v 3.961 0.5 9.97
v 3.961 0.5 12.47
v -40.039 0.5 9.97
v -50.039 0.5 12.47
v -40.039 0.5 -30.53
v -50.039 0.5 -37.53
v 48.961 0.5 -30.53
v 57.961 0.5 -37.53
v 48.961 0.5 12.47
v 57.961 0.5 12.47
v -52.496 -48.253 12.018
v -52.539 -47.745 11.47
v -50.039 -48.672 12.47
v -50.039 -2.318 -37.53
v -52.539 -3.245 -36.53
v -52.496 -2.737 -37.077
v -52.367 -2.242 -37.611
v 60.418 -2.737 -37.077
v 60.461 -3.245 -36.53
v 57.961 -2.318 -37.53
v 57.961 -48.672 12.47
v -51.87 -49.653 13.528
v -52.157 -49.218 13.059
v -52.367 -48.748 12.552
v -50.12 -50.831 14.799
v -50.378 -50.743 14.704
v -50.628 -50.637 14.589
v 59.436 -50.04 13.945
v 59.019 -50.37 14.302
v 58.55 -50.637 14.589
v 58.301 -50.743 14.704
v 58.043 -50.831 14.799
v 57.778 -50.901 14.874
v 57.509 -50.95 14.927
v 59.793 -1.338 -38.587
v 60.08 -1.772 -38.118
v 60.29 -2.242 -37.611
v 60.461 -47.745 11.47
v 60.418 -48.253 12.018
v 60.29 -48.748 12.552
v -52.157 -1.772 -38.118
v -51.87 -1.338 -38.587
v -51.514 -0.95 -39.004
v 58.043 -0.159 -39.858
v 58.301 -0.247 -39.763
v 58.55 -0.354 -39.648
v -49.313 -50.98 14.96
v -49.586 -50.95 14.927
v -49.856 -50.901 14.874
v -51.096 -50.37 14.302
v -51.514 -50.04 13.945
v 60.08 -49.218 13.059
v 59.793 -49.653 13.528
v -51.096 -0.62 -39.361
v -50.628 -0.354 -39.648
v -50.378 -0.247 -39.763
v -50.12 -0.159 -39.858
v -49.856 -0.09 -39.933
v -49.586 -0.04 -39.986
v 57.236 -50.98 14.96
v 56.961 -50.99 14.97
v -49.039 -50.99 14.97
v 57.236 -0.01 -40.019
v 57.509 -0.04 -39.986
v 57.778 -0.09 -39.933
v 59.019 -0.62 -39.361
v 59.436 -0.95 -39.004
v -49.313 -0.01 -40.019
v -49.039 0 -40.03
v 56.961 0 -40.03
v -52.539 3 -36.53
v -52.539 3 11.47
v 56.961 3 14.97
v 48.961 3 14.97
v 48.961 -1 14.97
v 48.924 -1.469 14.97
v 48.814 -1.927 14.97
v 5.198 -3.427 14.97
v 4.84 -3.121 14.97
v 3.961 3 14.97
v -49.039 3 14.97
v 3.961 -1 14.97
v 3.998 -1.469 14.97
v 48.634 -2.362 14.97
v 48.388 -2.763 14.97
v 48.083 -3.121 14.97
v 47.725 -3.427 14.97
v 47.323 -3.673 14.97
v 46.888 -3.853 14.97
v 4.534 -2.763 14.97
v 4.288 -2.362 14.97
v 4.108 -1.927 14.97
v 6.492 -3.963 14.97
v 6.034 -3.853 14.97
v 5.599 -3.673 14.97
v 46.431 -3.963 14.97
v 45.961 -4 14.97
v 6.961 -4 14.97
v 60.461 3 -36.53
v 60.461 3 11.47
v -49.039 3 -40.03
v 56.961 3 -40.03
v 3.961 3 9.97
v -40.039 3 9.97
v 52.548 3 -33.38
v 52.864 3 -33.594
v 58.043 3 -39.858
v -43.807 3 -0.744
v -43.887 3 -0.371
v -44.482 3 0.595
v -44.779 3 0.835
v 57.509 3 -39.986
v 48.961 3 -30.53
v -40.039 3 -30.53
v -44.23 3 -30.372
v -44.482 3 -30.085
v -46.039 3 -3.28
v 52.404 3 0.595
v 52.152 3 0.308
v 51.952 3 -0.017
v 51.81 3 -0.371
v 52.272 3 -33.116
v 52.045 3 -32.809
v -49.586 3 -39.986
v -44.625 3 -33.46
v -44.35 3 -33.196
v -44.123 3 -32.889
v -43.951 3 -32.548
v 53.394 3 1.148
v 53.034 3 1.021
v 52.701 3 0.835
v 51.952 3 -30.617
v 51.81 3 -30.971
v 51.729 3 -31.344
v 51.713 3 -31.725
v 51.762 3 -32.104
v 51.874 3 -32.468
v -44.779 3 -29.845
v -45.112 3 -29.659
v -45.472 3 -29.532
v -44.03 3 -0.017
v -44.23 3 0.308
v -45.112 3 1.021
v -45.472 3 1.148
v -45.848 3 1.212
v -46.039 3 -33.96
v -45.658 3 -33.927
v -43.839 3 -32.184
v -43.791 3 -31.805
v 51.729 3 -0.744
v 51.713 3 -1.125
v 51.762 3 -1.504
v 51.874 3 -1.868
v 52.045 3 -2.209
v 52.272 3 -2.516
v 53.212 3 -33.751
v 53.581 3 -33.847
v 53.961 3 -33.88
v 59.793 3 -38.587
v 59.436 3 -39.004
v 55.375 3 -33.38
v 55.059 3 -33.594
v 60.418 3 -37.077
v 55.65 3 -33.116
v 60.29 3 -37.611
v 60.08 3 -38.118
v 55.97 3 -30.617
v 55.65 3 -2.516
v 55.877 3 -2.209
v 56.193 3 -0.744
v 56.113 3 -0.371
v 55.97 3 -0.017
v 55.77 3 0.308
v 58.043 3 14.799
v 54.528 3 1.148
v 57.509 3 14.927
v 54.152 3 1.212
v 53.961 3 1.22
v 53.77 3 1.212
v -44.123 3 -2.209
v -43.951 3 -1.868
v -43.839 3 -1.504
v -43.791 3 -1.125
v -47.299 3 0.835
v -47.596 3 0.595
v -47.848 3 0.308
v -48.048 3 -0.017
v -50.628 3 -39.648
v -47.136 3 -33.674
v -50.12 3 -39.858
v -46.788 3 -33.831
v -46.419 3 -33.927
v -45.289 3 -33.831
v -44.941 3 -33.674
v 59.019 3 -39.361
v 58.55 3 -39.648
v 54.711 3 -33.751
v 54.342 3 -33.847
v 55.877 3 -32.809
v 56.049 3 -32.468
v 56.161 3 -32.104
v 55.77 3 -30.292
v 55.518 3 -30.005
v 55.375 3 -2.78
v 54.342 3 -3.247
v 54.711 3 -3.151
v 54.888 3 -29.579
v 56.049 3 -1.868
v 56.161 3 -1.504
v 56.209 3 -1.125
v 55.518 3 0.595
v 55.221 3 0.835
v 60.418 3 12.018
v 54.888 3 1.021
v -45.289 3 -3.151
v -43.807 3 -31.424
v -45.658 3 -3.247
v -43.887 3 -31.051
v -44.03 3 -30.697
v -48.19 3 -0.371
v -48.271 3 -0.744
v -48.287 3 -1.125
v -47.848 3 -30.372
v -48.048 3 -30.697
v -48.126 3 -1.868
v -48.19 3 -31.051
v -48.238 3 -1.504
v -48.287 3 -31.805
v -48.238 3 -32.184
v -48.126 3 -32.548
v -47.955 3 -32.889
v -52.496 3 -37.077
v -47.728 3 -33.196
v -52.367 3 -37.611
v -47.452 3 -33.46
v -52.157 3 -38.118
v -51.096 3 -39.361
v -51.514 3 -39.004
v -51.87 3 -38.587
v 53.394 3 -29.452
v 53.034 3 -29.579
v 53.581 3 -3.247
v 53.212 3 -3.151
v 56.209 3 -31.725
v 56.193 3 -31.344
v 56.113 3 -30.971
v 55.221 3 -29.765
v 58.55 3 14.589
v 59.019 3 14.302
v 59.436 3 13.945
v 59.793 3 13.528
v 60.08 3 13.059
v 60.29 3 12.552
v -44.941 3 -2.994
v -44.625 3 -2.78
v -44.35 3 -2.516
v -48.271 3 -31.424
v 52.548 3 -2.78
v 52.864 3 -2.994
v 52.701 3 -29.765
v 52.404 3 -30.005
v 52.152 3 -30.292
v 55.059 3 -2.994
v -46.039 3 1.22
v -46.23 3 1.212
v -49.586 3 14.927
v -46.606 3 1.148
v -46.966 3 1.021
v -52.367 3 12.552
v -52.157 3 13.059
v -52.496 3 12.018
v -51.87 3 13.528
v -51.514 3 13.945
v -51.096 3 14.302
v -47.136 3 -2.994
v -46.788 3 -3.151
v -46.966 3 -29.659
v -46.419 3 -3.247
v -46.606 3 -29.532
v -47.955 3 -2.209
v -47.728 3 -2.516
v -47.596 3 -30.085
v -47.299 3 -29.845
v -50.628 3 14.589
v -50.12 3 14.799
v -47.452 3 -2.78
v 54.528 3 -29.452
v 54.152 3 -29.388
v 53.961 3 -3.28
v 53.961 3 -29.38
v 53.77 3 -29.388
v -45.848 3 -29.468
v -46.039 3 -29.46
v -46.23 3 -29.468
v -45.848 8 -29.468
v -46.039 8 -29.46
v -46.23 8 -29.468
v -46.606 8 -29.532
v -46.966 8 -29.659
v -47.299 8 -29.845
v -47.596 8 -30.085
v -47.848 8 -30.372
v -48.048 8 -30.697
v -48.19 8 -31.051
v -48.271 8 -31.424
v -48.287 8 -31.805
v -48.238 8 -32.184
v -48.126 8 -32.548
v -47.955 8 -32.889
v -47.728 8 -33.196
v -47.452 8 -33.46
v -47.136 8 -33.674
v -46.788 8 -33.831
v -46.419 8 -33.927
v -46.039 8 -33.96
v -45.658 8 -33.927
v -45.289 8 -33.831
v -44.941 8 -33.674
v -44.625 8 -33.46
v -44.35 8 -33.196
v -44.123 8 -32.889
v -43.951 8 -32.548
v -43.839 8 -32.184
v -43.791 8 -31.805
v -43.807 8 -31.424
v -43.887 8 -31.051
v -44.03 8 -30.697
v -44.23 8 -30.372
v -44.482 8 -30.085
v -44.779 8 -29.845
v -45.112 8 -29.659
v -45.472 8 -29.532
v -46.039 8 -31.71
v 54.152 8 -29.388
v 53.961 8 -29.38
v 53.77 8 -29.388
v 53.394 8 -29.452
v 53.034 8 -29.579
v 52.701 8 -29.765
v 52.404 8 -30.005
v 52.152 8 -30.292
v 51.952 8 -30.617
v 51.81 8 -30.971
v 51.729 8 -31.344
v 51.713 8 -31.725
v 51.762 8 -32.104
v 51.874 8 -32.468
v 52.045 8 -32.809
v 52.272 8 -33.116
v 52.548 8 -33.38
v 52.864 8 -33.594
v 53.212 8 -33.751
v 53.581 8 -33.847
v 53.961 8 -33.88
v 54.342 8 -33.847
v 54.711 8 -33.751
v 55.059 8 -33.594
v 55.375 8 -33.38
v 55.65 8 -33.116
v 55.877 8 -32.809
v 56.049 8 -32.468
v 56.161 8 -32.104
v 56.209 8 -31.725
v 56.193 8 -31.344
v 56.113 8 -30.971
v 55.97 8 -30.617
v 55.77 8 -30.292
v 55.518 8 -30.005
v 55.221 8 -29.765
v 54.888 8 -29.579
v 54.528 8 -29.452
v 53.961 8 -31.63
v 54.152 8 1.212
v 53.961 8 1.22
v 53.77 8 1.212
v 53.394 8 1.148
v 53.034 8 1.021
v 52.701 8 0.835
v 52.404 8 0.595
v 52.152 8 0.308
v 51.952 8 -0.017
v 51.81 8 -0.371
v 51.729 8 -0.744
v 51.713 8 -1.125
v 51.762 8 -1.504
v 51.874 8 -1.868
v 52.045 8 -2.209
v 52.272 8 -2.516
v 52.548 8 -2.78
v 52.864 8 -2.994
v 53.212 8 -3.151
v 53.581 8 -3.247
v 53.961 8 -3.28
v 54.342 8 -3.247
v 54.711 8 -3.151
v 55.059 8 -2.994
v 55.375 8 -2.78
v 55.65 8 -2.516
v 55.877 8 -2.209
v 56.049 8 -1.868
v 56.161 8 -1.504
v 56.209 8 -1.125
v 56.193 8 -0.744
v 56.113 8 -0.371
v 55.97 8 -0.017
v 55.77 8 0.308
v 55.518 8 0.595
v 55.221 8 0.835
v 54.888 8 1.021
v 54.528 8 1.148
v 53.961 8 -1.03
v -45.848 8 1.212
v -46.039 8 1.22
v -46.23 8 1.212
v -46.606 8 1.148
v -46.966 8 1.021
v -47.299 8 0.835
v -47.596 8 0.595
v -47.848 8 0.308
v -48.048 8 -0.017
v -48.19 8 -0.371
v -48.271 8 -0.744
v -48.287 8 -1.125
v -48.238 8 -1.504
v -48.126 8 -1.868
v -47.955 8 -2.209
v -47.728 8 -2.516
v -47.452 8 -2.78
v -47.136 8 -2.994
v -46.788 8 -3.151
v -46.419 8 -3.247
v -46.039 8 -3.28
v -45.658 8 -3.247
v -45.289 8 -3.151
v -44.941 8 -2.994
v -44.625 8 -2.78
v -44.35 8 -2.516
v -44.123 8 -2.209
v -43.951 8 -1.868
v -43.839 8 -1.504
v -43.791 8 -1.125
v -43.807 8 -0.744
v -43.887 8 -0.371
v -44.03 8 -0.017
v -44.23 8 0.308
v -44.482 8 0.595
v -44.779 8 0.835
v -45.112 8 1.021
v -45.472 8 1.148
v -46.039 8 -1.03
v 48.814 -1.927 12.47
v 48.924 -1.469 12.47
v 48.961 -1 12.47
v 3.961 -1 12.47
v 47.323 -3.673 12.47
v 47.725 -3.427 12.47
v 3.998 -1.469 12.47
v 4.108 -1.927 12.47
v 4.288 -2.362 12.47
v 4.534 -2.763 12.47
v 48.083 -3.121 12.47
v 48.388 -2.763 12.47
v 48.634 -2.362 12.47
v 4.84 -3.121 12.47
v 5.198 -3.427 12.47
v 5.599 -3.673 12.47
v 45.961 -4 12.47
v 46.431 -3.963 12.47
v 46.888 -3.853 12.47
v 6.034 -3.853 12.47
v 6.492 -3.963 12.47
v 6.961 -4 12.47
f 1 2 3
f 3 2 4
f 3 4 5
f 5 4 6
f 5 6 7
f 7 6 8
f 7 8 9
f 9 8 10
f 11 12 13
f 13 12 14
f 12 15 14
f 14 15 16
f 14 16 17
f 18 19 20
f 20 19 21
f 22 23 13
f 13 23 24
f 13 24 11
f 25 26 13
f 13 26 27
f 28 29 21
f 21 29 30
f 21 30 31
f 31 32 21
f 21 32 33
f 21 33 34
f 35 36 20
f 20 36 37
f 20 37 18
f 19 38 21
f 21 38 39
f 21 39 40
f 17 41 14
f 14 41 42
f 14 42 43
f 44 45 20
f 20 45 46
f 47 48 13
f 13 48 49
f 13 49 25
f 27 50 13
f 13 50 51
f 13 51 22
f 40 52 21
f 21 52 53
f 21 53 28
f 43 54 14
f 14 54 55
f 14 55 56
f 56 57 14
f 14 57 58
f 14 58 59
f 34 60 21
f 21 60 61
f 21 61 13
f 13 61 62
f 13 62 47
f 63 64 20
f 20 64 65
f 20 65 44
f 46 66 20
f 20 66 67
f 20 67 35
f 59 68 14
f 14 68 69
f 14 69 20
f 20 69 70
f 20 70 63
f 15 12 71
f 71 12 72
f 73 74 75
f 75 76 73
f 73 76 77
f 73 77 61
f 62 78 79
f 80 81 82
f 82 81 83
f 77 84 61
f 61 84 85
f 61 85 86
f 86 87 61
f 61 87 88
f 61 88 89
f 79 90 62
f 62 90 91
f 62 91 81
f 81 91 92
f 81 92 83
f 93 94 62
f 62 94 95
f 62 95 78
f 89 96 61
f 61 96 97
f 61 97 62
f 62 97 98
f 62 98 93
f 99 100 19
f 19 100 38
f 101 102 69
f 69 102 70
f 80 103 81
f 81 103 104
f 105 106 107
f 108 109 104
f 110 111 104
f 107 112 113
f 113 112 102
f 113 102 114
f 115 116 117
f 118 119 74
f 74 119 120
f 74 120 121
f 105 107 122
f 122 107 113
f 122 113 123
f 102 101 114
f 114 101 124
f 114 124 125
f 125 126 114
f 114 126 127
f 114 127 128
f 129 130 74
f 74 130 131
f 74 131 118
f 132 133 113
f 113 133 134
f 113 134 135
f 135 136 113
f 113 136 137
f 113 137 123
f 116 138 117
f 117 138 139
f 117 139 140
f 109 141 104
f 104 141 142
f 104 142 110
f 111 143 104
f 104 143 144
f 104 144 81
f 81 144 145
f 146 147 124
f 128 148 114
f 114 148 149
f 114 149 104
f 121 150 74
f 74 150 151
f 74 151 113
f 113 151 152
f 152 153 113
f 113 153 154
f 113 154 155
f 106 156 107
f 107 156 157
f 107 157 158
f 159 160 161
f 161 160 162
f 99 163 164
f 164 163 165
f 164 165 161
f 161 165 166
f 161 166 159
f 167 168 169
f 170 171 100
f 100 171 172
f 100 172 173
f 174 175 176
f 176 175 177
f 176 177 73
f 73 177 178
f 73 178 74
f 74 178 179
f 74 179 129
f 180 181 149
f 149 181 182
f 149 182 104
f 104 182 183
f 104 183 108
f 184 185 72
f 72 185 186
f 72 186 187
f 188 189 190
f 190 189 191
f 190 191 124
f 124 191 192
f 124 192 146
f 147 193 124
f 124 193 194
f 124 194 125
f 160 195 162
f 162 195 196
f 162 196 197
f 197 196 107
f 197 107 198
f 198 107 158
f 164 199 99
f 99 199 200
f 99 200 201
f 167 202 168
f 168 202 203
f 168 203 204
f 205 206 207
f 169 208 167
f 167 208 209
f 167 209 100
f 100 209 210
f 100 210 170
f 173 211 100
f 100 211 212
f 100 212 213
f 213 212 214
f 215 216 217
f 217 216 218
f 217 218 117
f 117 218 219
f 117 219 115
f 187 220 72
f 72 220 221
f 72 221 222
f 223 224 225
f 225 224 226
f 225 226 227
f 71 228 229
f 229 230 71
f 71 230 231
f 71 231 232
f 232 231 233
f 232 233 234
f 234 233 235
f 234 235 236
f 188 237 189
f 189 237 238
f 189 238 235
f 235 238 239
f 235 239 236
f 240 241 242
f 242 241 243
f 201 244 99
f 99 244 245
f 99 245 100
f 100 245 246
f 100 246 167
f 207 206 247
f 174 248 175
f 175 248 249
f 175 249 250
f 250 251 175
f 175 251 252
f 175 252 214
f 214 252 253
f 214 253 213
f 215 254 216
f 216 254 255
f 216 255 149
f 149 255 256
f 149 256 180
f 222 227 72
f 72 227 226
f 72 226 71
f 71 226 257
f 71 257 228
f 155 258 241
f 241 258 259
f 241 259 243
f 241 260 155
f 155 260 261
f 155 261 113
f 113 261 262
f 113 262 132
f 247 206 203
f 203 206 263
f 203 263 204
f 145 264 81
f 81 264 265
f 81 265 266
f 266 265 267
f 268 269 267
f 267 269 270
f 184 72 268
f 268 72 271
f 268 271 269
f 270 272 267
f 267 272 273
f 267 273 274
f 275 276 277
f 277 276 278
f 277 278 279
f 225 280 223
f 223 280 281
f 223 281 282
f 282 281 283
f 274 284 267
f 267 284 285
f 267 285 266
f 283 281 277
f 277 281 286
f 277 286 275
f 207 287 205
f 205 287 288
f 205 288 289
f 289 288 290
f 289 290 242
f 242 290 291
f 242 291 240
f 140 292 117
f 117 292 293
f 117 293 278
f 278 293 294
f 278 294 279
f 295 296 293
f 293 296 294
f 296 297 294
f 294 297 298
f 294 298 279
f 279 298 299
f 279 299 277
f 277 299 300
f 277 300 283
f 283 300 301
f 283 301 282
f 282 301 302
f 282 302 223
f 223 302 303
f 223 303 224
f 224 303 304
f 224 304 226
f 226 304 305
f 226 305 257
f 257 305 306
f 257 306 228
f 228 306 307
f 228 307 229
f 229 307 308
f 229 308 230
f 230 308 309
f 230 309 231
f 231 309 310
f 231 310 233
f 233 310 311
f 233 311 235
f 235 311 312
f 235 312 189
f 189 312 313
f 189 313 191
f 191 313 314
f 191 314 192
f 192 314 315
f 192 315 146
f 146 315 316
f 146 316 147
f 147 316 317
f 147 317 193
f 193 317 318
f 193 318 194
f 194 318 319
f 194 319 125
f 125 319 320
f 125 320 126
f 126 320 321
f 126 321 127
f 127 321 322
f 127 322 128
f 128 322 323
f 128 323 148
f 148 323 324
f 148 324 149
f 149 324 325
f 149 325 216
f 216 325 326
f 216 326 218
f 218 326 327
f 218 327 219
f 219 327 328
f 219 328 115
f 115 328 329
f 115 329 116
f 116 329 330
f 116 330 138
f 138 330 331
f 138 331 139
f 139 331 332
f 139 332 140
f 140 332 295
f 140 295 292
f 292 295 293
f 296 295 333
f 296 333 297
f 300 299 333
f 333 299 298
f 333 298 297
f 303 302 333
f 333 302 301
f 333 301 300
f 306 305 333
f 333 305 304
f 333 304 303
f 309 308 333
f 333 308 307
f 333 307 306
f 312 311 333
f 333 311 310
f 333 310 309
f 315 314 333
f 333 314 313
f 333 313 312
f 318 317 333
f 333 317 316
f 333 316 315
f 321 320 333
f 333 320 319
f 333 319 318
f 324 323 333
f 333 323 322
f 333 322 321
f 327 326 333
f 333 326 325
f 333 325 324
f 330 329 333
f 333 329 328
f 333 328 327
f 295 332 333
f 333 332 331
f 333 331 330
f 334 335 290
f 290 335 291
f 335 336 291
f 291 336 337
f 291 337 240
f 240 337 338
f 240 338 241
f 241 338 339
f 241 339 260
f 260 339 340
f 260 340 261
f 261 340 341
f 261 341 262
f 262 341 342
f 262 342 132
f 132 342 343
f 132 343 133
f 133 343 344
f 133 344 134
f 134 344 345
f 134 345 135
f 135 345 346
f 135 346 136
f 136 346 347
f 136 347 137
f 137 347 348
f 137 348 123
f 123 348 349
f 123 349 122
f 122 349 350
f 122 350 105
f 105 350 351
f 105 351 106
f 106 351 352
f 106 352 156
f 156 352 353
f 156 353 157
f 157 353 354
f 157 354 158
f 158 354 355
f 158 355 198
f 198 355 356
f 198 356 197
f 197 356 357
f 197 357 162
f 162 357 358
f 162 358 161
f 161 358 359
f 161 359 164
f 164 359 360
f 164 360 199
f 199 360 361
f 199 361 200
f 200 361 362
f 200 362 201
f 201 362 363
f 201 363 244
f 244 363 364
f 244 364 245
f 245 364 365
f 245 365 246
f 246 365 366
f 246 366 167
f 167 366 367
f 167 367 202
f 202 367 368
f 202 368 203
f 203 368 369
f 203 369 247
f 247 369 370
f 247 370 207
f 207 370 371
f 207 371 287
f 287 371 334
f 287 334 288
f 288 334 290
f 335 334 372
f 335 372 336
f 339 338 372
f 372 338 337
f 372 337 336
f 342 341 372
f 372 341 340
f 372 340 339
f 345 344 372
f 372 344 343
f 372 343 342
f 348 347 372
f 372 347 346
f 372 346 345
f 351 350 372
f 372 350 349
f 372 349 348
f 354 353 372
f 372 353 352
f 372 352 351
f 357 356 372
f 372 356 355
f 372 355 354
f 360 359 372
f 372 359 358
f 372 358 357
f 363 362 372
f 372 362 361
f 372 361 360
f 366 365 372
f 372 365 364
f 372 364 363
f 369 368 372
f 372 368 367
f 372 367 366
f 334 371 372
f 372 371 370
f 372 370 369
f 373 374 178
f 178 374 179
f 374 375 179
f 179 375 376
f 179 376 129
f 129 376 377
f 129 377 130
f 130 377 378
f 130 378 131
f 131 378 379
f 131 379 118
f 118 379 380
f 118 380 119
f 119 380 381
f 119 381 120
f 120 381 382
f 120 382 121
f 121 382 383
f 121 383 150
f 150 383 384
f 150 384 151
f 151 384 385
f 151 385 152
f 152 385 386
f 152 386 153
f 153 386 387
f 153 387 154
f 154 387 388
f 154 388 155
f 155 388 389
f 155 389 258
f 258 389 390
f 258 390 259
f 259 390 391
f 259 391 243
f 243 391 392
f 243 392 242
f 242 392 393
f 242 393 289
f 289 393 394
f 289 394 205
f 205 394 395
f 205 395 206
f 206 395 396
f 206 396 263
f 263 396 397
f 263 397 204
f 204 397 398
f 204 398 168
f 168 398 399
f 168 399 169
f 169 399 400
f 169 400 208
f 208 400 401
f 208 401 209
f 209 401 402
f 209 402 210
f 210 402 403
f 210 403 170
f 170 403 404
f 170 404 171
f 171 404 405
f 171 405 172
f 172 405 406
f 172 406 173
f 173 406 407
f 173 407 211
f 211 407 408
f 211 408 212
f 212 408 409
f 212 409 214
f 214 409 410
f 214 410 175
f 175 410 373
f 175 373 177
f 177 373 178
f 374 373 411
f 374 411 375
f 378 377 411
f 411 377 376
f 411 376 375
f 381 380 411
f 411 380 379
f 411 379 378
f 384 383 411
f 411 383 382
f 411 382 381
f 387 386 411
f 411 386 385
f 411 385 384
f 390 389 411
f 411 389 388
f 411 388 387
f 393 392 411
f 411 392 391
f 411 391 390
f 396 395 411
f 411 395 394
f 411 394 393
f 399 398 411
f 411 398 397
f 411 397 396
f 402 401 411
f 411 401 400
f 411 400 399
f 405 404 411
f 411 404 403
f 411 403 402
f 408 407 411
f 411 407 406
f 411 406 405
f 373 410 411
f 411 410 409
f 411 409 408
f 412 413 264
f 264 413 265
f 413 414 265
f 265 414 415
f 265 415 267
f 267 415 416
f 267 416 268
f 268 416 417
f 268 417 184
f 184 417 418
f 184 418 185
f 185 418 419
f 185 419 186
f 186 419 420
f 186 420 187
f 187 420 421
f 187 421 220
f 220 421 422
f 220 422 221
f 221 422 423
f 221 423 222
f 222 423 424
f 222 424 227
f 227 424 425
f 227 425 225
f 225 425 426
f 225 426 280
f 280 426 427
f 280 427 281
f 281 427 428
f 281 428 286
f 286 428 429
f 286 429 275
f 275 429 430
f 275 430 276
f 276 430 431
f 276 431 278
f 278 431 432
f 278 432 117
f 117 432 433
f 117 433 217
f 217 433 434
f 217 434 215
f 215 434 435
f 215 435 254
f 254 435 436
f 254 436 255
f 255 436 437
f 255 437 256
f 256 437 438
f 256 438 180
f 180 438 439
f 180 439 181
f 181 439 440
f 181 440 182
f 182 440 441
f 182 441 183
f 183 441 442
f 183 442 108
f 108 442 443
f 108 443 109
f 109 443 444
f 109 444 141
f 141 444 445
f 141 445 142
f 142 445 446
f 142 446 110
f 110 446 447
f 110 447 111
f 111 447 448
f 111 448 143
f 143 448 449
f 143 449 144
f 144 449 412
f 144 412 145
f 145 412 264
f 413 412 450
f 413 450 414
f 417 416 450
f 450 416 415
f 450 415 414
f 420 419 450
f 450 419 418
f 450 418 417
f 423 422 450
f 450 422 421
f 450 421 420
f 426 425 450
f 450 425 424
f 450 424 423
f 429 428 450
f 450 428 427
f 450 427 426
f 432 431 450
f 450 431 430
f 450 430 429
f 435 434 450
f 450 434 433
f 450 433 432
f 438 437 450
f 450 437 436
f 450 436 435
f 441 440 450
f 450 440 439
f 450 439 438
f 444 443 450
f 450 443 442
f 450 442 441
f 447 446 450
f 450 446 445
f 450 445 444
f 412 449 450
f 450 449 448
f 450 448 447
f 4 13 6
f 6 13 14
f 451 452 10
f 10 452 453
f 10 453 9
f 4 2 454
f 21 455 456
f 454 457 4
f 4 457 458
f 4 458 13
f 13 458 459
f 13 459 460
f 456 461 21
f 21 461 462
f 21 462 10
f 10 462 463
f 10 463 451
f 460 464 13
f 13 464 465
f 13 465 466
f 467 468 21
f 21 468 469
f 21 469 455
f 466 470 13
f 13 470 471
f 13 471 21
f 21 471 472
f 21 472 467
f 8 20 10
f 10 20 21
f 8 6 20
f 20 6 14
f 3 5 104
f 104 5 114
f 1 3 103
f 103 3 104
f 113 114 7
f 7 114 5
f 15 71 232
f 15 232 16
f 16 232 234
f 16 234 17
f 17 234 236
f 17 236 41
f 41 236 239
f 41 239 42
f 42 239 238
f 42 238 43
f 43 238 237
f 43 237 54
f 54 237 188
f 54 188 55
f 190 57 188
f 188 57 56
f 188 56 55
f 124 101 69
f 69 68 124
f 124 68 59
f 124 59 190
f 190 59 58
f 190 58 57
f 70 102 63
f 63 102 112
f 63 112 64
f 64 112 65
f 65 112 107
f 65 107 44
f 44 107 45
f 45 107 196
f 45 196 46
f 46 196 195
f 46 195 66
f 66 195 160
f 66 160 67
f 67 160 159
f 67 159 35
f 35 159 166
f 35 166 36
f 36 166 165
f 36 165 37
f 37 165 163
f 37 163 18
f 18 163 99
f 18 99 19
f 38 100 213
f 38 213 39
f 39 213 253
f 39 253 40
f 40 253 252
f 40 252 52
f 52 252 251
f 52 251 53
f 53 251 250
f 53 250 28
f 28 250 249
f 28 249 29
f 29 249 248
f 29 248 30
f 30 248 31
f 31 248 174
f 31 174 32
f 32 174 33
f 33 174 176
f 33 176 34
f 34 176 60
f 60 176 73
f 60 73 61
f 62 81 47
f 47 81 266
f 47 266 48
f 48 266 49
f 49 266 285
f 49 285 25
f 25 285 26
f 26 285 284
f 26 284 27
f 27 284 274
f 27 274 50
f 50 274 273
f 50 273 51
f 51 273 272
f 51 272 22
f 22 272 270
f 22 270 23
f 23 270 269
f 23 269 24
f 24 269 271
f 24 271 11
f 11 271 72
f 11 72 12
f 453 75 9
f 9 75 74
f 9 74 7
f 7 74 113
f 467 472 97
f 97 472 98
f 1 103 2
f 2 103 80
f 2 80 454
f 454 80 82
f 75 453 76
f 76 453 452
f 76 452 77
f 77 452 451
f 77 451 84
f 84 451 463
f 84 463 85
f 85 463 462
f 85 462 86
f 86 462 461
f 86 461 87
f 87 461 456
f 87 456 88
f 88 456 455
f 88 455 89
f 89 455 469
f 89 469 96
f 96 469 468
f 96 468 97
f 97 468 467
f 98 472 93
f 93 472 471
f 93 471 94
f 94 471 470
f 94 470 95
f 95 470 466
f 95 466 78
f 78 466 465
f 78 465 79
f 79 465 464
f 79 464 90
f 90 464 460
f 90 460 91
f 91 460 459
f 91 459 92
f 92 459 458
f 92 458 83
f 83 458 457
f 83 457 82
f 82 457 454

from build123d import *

# Parameters (mm, degrees)
SKETCH1_W           = 113
SKETCH1_H           = 55
BOSS_EXTRUDE1_DEPTH = 3
BOSS_EXTRUDE3_DEPTH = 113
SKETCH2_R           = 2.25
BOSS_EXTRUDE2_DEPTH = 5
SHELL1_START        = -50.038745387
SHELL1_DEPTH        = 108
SKETCH4_W           = 88
SKETCH4_H           = 40.5
CUT_EXTRUDE1_DEPTH  = 10
FILLET2_R           = 3.5
CUT_EXTRUDE2_REACH  = 98.336
SKETCH5_W           = 45
SKETCH5_H           = 7
FILLET3_R           = 3


# Read off the part's stored shape, not the designer's step: Shell1
with BuildPart() as part:
    # Sketch1 → Boss-Extrude1 (new body)
    with BuildSketch(Plane(origin=(0, 0, 0), x_dir=(1, 0, 0), z_dir=(0, 1, 0))):
        with Locations((3.961254613, 12.529520295)):
            Rectangle(SKETCH1_W, SKETCH1_H)
    extrude(amount=BOSS_EXTRUDE1_DEPTH)

    # Sketch3 → Boss-Extrude3 (add)
    with BuildSketch(Plane(origin=(60.461254613, 0, 0), x_dir=(0, 0, -1), z_dir=(1, 0, 0))):
        Polygon((-14.970479705, 0), (-14.970479705, -50.990195136), (40.029520295, 0), align=None)
    extrude(amount=-BOSS_EXTRUDE3_DEPTH)

    # Sketch2 → Boss-Extrude2 (add)
    with BuildSketch(Plane(origin=(0, 3, 0), x_dir=(1, 0, 0), z_dir=(0, 1, 0))):
        with Locations(Location((-46.038745387, 31.709520295, 0), (0, 0, 270))):
            Circle(SKETCH2_R)
        with Locations(Location((53.961254613, 31.629520295, 0), (0, 0, 270))):
            Circle(SKETCH2_R)
        with Locations(Location((53.961254613, 1.029520295, 0), (0, 0, 270))):
            Circle(SKETCH2_R)
        with Locations(Location((-46.038745387, 1.029520295, 0), (0, 0, 270))):
            Circle(SKETCH2_R)
    extrude(amount=BOSS_EXTRUDE2_DEPTH)

    # Shell1 outline → Shell1 (cut)
    with BuildSketch(Plane.YZ.offset(SHELL1_START)):
        Polygon((0.5, 12.470479705), (-48.672458993, 12.470479705), (-2.317736143, -37.529520295), (0.5, -37.529520295), align=None)
    extrude(amount=SHELL1_DEPTH, mode=Mode.SUBTRACT)

    # Sketch4 → Cut-Extrude1 (cut)
    with BuildSketch(Plane.XZ.offset(-0.5)):
        with Locations((3.961254613, -10.279520295)):
            Rectangle(SKETCH4_W, SKETCH4_H)
    extrude(amount=-CUT_EXTRUDE1_DEPTH, mode=Mode.SUBTRACT)

    # Fillet2
    fillet2_edges = [part.edges().sort_by_distance(p)[0] for p in [
        (-52.538745387, 1.5, -40.029520295),
        (60.461254613, 1.5, -40.029520295),
        (60.461254613, -23.995097568, 14.970479705),
        (-52.538745387, -23.995097568, 14.970479705),
    ]]
    fillet(fillet2_edges, radius=FILLET2_R)

    # Cut-Extrude2: up to this face of the body (flat: up to its plane)
    cut_extrude2_end = Plane(part.part.faces().sort_by_distance((3.961254613, 1.75, -30.529520295))[0])
    # Sketch5 → Cut-Extrude2 (cut, up to the picked face)
    with BuildSketch(Plane.XY.offset(14.970479705), mode=Mode.PRIVATE) as cut_extrude2_sk1:
        with Locations((26.461254613, -0.5)):
            Rectangle(SKETCH5_W, SKETCH5_H)
    cut_extrude2_tool1 = split(extrude(cut_extrude2_sk1.sketch, amount=-CUT_EXTRUDE2_REACH, mode=Mode.PRIVATE), bisect_by=cut_extrude2_end, keep=Keep.BOTH, mode=Mode.PRIVATE)
    add(cut_extrude2_tool1.solids().sort_by(Axis((26.461255, -0.5, 14.97048), (0, 0, -1)))[0], mode=Mode.SUBTRACT)

    # Fillet3
    fillet3_edges = [part.edges().sort_by_distance(p)[0] for p in [
        (48.961254613, -4, 13.720479705),
        (3.961254613, -4, 13.720479705),
    ]]
    fillet(fillet3_edges, radius=FILLET3_R)


solid = part.part
